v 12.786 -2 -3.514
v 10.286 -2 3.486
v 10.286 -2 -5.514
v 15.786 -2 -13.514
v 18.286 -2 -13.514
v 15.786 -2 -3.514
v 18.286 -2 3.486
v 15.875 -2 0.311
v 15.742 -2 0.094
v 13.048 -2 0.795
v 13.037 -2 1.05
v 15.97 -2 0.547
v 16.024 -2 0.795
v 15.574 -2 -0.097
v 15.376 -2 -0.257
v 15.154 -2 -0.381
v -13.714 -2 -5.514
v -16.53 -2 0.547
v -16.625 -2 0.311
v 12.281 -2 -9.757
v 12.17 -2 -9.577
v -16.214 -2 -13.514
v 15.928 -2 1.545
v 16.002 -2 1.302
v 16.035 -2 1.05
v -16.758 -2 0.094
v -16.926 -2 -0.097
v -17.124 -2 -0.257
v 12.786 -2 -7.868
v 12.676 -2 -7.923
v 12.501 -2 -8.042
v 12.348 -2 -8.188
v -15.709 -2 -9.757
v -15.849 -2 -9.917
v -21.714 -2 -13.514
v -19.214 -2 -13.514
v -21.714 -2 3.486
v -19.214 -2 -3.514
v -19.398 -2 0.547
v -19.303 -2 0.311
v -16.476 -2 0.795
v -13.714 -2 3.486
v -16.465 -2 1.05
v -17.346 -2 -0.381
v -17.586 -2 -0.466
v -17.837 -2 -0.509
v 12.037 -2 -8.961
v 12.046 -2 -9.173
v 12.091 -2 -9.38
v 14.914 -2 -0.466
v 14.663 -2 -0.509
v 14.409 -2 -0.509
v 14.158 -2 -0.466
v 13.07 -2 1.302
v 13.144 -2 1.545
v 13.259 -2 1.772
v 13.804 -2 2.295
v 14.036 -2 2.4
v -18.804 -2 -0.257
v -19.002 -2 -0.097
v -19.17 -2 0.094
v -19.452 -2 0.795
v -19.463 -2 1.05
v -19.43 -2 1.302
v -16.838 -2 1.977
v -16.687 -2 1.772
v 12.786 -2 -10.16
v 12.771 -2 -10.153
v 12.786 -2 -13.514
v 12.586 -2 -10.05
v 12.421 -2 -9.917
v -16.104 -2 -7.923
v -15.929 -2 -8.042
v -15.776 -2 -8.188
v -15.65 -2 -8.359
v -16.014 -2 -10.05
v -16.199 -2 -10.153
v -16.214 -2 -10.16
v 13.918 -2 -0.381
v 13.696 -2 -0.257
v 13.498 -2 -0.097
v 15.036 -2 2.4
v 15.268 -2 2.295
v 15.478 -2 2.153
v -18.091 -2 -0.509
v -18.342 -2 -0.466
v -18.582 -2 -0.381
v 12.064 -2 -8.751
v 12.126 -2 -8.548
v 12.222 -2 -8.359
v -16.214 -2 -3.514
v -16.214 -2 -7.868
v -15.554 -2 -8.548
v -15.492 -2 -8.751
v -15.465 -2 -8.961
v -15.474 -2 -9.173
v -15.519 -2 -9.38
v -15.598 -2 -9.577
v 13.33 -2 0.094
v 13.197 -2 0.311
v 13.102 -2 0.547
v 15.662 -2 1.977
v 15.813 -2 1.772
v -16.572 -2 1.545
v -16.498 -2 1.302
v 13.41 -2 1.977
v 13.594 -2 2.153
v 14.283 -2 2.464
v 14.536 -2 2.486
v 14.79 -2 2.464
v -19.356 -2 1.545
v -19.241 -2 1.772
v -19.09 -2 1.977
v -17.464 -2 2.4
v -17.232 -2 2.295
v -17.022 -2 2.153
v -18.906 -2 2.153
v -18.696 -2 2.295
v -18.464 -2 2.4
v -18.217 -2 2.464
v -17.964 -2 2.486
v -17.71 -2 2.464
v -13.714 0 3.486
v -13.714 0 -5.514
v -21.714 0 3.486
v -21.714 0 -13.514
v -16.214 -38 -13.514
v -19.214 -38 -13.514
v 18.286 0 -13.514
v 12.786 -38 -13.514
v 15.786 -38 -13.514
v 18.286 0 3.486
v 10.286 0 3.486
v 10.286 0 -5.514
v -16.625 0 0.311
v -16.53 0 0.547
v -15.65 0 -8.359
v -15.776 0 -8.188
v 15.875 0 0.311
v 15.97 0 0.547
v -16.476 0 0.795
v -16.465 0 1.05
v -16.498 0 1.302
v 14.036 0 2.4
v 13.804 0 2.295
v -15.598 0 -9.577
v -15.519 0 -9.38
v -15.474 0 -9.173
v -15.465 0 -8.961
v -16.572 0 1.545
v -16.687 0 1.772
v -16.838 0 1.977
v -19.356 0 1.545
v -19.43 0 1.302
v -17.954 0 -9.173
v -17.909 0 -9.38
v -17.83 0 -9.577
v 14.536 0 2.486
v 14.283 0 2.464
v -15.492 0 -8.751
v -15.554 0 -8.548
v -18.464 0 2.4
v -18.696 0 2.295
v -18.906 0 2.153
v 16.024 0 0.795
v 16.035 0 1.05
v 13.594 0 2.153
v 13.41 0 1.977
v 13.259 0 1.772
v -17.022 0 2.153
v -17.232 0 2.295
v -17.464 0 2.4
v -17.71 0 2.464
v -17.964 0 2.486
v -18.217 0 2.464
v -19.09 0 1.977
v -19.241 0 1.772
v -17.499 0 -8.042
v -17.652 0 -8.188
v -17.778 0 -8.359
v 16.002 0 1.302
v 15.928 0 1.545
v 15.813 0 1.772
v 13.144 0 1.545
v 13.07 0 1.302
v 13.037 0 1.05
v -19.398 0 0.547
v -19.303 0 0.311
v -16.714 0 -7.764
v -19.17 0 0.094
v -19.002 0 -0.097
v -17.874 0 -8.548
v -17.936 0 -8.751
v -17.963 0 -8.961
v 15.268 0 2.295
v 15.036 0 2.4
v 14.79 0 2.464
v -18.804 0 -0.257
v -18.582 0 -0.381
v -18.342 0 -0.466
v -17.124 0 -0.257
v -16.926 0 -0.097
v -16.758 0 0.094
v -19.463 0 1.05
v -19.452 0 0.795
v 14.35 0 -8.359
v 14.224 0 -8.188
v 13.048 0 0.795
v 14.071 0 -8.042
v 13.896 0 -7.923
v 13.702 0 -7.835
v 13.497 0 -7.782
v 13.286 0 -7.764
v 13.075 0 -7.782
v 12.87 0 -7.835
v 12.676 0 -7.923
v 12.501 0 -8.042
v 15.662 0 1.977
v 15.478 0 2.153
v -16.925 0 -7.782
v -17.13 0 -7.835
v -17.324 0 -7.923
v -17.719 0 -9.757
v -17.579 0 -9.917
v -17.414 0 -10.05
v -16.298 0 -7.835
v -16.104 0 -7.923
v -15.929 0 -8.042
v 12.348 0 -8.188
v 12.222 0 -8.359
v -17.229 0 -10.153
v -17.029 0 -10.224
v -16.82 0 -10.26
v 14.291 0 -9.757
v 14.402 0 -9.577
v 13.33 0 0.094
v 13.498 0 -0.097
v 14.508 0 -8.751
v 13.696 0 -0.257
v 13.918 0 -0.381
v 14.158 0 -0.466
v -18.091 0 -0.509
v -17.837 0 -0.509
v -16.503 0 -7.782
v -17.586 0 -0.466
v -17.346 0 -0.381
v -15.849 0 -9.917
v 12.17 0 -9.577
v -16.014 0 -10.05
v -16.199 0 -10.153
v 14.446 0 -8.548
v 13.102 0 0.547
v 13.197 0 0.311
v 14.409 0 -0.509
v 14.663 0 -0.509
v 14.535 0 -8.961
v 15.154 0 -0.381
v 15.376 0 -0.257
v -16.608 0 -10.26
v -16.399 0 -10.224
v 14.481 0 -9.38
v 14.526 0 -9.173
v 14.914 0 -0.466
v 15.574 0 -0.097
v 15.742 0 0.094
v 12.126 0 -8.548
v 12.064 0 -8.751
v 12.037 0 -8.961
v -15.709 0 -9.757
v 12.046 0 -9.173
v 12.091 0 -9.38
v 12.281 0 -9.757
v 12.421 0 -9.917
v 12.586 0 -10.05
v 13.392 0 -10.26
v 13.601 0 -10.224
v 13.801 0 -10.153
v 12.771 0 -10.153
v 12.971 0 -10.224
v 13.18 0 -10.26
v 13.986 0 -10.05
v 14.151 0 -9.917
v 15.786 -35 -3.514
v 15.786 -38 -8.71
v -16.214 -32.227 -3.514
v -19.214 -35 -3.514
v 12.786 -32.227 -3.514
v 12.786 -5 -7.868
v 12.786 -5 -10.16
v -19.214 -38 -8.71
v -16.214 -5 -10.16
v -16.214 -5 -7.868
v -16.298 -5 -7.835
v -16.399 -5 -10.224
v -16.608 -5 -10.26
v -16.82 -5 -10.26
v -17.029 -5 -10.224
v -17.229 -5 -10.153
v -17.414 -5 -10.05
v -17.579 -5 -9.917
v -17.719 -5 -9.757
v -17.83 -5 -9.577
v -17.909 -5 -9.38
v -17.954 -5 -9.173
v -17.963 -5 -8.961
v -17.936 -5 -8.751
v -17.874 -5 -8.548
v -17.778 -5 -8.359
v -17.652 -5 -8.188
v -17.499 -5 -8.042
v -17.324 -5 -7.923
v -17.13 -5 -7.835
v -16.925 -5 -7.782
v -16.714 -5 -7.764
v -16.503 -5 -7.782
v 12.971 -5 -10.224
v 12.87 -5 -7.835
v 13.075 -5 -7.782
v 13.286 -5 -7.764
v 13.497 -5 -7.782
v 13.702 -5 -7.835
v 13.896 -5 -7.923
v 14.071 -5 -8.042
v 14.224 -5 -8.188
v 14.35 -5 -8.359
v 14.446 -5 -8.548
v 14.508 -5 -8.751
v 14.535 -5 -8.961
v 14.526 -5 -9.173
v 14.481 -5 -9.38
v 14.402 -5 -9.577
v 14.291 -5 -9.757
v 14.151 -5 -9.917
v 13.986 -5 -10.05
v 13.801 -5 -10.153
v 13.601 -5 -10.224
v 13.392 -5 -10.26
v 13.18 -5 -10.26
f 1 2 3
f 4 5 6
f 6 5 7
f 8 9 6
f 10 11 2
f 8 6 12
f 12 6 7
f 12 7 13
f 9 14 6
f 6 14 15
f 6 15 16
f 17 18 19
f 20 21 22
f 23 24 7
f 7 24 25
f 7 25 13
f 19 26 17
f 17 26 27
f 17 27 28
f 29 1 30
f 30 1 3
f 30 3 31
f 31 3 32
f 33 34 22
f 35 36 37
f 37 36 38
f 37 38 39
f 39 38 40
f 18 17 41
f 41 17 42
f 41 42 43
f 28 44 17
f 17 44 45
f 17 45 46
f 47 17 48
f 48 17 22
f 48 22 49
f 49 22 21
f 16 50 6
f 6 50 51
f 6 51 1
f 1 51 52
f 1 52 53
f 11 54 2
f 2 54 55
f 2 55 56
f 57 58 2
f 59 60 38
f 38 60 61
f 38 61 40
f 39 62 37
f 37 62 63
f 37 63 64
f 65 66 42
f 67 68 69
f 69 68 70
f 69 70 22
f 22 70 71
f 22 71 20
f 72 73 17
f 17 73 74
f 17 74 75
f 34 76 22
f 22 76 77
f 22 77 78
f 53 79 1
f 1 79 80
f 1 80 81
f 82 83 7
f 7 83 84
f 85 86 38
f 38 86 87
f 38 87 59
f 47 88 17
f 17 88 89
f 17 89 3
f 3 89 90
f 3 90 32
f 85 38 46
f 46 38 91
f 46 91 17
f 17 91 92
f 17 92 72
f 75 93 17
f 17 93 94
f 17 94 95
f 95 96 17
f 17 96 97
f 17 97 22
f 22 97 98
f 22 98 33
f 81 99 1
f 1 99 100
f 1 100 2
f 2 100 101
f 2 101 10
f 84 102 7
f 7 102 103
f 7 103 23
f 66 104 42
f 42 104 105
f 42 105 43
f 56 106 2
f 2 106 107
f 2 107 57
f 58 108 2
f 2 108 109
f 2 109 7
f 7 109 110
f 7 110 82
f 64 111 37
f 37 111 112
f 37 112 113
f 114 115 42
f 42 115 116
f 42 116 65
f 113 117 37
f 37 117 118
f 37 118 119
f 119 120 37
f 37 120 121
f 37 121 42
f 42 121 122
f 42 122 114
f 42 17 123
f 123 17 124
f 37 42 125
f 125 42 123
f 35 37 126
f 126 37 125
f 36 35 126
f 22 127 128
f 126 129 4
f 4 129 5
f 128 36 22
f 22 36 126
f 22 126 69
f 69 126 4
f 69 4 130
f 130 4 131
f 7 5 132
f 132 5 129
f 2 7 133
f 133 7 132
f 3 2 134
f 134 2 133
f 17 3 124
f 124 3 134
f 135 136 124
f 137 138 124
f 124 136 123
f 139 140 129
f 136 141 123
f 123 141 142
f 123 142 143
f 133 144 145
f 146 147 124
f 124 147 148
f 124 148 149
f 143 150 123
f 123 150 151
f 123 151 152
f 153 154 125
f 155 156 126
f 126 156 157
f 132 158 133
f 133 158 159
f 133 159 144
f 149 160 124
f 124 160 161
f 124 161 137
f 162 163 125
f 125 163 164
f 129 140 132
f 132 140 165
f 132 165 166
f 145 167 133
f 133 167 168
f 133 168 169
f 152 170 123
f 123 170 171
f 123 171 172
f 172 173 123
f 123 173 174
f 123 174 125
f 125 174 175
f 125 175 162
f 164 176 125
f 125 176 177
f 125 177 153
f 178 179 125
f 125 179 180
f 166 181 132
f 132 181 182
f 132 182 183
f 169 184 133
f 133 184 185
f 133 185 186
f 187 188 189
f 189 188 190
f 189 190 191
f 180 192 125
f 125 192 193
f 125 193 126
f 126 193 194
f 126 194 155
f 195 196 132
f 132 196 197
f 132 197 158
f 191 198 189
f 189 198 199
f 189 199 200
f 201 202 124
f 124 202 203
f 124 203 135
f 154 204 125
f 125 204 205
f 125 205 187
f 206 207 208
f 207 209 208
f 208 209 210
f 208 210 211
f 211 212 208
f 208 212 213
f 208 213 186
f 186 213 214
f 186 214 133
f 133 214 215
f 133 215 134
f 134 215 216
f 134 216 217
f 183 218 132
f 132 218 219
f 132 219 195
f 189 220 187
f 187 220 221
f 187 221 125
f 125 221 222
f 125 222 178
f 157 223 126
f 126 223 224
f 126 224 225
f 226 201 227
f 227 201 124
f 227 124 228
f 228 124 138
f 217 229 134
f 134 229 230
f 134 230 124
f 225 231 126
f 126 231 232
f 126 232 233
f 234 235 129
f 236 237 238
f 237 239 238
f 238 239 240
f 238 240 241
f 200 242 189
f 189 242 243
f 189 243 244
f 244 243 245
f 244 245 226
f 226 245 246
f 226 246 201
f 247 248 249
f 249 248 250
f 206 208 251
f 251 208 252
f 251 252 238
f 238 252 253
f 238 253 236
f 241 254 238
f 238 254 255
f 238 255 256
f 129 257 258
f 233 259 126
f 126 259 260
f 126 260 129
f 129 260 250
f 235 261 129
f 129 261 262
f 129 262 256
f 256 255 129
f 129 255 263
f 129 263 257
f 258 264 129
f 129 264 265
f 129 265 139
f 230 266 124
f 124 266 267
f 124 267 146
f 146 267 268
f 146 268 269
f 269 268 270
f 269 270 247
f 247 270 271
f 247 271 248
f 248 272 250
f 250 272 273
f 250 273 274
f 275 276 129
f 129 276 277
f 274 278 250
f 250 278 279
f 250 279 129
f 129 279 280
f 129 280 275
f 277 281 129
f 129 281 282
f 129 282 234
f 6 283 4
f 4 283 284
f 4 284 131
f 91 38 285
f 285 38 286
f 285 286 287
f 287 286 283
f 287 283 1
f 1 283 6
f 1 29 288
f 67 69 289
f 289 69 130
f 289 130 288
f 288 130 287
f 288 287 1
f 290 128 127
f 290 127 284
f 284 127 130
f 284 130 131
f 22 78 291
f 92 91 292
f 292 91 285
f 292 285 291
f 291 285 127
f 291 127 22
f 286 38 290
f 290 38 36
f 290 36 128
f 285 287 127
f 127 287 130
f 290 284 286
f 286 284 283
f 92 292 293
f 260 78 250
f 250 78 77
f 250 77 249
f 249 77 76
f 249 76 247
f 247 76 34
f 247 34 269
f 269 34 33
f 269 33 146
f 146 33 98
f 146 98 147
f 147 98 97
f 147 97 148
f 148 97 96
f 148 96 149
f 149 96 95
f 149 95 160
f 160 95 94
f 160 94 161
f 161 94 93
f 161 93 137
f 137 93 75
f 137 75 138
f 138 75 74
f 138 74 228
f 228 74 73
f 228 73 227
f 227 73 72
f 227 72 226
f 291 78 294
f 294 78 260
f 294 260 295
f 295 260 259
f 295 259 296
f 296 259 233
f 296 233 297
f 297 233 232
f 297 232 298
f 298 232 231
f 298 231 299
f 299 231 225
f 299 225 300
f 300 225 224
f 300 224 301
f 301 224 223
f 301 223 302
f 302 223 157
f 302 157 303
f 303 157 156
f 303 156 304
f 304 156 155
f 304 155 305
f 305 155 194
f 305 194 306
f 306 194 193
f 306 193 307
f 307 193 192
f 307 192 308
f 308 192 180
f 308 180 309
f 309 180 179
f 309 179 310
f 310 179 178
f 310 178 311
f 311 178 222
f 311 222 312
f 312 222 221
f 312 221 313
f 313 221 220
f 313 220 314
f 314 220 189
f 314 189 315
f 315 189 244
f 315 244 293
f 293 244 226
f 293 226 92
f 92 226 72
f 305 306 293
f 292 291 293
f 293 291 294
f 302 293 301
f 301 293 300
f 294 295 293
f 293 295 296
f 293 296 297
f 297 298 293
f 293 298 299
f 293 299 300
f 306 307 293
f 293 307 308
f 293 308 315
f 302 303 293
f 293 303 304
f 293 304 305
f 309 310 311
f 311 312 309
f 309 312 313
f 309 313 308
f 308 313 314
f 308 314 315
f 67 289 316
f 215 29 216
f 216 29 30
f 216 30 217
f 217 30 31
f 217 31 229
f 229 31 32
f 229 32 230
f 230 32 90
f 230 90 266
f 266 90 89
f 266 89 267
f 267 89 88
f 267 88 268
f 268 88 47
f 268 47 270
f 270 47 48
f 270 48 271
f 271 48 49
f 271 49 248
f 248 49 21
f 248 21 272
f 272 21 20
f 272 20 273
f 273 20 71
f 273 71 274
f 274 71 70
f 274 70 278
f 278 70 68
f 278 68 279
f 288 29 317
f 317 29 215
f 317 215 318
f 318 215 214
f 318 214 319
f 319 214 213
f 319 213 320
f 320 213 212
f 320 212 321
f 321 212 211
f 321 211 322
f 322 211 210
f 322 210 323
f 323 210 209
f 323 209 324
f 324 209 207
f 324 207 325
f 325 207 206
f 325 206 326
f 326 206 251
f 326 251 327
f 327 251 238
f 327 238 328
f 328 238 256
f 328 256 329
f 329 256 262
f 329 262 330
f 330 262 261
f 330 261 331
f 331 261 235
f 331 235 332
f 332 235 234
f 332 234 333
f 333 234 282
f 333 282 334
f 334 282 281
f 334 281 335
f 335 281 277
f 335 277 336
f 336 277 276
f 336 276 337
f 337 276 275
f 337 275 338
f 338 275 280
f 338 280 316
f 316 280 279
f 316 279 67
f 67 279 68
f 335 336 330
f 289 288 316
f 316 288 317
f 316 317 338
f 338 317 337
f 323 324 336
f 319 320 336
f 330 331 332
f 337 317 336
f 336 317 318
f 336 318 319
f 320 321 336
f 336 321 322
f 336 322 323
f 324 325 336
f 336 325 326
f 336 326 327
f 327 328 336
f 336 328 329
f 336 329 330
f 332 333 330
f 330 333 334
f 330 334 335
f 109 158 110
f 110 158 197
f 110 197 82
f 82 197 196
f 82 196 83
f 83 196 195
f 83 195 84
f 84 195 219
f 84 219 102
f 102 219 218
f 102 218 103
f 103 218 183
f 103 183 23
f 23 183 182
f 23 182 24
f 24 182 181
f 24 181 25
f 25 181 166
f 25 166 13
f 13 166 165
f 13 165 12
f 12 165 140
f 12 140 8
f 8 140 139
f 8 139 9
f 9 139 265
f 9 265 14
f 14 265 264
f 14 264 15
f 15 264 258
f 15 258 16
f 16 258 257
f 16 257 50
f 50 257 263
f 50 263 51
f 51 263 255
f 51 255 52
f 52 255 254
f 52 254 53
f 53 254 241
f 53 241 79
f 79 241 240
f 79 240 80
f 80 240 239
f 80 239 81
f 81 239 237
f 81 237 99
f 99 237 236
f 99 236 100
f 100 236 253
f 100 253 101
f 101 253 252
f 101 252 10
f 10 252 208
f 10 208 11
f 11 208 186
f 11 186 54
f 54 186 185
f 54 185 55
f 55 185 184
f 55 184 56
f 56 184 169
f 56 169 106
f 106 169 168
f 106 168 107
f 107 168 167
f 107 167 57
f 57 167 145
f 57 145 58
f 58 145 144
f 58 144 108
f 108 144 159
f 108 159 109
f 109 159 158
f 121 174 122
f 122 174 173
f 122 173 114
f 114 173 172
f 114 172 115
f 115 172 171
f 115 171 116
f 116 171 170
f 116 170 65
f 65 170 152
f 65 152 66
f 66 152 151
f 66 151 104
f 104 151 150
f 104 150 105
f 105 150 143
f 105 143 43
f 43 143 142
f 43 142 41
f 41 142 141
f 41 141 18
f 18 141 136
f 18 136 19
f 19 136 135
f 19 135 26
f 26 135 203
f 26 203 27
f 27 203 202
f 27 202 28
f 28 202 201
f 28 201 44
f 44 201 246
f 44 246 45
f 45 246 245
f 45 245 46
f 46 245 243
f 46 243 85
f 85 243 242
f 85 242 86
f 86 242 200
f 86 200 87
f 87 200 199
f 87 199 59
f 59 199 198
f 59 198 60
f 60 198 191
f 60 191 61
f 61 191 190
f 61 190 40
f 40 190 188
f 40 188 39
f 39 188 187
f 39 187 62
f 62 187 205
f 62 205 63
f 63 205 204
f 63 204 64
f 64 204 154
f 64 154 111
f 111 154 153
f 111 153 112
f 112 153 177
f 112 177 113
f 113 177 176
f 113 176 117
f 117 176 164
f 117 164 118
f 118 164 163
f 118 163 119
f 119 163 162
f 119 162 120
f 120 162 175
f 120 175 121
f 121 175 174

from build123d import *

# Parameters (mm, degrees)
SKETCH1_W           = 8
SKETCH1_H           = 17
SKETCH1_W_2         = 24
SKETCH1_H_2         = 8
BOSS_EXTRUDE1_DEPTH = 2
SKETCH4_W           = 3
SKETCH4_H           = 10
BOSS_EXTRUDE4_DEPTH = 36
BOSS_EXTRUDE5_REACH = 36.5
CUT_EXTRUDE3_DEPTH  = 38.5
SKETCH7_R           = 1.25
SKETCH7_R_2         = 1.5
CUT_EXTRUDE4_DEPTH  = 5


with BuildPart() as part:
    # Sketch1 → Boss-Extrude1 (new body)
    with BuildSketch(Plane(origin=(0, 0, 0), x_dir=(1, 0, 0), z_dir=(0, 1, 0))):
        with Locations((-17.713965849, 5.014073333)):
            Rectangle(SKETCH1_W, SKETCH1_H)
        with Locations((-1.713965849, 9.514073333)):
            Rectangle(SKETCH1_W_2, SKETCH1_H_2)
        with Locations((14.286034151, 5.014073333)):
            Rectangle(SKETCH1_W, SKETCH1_H)
    extrude(amount=-BOSS_EXTRUDE1_DEPTH)

    # Sketch4 → Boss-Extrude4 (add)
    with BuildSketch(Plane(origin=(0, -2, 0), x_dir=(-1, 0, 0), z_dir=(0, -1, 0))):
        with Locations((-14.286034151, 8.514073333)):
            Rectangle(SKETCH4_W, SKETCH4_H)
        with Locations((17.713965849, 8.514073333)):
            Rectangle(SKETCH4_W, SKETCH4_H)
    extrude(amount=BOSS_EXTRUDE4_DEPTH)

    # Sketch5 → Boss-Extrude5 (add, up to next)
    with BuildSketch(Plane.ZY.offset(-12.786034151), mode=Mode.PRIVATE) as boss_extrude5_sk1:
        Polygon((-13.514073333, -38), (-3.514073333, -32.226497308), (-3.514073333, -38), align=None)
    boss_extrude5_tool1 = extrude(boss_extrude5_sk1.sketch, amount=BOSS_EXTRUDE5_REACH, mode=Mode.PRIVATE) - part.part
    add(boss_extrude5_tool1.solids().sort_by_distance((12.786034, -36.075499, -6.847407))[0])

    # Sketch6 → Cut-Extrude3 (cut, through all)
    with BuildSketch(Plane.ZY.offset(19.213965849)):
        Polygon((-3.514073333, -38), (-3.514073333, -35), (-8.710225756, -38), align=None)
    extrude(amount=-CUT_EXTRUDE3_DEPTH, mode=Mode.SUBTRACT)

    # Sketch7 → Cut-Extrude4 (cut)
    with BuildSketch(Plane(origin=(0, 0, 0), x_dir=(1, 0, 0), z_dir=(0, 1, 0))):
        with Locations((-16.713965849, 9.014073333)):
            Circle(SKETCH7_R)
        with Locations((13.286034151, 9.014073333)):
            Circle(SKETCH7_R)
        with Locations((-17.963965849, -0.985926667)):
            Circle(SKETCH7_R_2)
        with Locations((14.536034151, -0.985926667)):
            Circle(SKETCH7_R_2)
    extrude(amount=-CUT_EXTRUDE4_DEPTH, mode=Mode.SUBTRACT)


solid = part.part
